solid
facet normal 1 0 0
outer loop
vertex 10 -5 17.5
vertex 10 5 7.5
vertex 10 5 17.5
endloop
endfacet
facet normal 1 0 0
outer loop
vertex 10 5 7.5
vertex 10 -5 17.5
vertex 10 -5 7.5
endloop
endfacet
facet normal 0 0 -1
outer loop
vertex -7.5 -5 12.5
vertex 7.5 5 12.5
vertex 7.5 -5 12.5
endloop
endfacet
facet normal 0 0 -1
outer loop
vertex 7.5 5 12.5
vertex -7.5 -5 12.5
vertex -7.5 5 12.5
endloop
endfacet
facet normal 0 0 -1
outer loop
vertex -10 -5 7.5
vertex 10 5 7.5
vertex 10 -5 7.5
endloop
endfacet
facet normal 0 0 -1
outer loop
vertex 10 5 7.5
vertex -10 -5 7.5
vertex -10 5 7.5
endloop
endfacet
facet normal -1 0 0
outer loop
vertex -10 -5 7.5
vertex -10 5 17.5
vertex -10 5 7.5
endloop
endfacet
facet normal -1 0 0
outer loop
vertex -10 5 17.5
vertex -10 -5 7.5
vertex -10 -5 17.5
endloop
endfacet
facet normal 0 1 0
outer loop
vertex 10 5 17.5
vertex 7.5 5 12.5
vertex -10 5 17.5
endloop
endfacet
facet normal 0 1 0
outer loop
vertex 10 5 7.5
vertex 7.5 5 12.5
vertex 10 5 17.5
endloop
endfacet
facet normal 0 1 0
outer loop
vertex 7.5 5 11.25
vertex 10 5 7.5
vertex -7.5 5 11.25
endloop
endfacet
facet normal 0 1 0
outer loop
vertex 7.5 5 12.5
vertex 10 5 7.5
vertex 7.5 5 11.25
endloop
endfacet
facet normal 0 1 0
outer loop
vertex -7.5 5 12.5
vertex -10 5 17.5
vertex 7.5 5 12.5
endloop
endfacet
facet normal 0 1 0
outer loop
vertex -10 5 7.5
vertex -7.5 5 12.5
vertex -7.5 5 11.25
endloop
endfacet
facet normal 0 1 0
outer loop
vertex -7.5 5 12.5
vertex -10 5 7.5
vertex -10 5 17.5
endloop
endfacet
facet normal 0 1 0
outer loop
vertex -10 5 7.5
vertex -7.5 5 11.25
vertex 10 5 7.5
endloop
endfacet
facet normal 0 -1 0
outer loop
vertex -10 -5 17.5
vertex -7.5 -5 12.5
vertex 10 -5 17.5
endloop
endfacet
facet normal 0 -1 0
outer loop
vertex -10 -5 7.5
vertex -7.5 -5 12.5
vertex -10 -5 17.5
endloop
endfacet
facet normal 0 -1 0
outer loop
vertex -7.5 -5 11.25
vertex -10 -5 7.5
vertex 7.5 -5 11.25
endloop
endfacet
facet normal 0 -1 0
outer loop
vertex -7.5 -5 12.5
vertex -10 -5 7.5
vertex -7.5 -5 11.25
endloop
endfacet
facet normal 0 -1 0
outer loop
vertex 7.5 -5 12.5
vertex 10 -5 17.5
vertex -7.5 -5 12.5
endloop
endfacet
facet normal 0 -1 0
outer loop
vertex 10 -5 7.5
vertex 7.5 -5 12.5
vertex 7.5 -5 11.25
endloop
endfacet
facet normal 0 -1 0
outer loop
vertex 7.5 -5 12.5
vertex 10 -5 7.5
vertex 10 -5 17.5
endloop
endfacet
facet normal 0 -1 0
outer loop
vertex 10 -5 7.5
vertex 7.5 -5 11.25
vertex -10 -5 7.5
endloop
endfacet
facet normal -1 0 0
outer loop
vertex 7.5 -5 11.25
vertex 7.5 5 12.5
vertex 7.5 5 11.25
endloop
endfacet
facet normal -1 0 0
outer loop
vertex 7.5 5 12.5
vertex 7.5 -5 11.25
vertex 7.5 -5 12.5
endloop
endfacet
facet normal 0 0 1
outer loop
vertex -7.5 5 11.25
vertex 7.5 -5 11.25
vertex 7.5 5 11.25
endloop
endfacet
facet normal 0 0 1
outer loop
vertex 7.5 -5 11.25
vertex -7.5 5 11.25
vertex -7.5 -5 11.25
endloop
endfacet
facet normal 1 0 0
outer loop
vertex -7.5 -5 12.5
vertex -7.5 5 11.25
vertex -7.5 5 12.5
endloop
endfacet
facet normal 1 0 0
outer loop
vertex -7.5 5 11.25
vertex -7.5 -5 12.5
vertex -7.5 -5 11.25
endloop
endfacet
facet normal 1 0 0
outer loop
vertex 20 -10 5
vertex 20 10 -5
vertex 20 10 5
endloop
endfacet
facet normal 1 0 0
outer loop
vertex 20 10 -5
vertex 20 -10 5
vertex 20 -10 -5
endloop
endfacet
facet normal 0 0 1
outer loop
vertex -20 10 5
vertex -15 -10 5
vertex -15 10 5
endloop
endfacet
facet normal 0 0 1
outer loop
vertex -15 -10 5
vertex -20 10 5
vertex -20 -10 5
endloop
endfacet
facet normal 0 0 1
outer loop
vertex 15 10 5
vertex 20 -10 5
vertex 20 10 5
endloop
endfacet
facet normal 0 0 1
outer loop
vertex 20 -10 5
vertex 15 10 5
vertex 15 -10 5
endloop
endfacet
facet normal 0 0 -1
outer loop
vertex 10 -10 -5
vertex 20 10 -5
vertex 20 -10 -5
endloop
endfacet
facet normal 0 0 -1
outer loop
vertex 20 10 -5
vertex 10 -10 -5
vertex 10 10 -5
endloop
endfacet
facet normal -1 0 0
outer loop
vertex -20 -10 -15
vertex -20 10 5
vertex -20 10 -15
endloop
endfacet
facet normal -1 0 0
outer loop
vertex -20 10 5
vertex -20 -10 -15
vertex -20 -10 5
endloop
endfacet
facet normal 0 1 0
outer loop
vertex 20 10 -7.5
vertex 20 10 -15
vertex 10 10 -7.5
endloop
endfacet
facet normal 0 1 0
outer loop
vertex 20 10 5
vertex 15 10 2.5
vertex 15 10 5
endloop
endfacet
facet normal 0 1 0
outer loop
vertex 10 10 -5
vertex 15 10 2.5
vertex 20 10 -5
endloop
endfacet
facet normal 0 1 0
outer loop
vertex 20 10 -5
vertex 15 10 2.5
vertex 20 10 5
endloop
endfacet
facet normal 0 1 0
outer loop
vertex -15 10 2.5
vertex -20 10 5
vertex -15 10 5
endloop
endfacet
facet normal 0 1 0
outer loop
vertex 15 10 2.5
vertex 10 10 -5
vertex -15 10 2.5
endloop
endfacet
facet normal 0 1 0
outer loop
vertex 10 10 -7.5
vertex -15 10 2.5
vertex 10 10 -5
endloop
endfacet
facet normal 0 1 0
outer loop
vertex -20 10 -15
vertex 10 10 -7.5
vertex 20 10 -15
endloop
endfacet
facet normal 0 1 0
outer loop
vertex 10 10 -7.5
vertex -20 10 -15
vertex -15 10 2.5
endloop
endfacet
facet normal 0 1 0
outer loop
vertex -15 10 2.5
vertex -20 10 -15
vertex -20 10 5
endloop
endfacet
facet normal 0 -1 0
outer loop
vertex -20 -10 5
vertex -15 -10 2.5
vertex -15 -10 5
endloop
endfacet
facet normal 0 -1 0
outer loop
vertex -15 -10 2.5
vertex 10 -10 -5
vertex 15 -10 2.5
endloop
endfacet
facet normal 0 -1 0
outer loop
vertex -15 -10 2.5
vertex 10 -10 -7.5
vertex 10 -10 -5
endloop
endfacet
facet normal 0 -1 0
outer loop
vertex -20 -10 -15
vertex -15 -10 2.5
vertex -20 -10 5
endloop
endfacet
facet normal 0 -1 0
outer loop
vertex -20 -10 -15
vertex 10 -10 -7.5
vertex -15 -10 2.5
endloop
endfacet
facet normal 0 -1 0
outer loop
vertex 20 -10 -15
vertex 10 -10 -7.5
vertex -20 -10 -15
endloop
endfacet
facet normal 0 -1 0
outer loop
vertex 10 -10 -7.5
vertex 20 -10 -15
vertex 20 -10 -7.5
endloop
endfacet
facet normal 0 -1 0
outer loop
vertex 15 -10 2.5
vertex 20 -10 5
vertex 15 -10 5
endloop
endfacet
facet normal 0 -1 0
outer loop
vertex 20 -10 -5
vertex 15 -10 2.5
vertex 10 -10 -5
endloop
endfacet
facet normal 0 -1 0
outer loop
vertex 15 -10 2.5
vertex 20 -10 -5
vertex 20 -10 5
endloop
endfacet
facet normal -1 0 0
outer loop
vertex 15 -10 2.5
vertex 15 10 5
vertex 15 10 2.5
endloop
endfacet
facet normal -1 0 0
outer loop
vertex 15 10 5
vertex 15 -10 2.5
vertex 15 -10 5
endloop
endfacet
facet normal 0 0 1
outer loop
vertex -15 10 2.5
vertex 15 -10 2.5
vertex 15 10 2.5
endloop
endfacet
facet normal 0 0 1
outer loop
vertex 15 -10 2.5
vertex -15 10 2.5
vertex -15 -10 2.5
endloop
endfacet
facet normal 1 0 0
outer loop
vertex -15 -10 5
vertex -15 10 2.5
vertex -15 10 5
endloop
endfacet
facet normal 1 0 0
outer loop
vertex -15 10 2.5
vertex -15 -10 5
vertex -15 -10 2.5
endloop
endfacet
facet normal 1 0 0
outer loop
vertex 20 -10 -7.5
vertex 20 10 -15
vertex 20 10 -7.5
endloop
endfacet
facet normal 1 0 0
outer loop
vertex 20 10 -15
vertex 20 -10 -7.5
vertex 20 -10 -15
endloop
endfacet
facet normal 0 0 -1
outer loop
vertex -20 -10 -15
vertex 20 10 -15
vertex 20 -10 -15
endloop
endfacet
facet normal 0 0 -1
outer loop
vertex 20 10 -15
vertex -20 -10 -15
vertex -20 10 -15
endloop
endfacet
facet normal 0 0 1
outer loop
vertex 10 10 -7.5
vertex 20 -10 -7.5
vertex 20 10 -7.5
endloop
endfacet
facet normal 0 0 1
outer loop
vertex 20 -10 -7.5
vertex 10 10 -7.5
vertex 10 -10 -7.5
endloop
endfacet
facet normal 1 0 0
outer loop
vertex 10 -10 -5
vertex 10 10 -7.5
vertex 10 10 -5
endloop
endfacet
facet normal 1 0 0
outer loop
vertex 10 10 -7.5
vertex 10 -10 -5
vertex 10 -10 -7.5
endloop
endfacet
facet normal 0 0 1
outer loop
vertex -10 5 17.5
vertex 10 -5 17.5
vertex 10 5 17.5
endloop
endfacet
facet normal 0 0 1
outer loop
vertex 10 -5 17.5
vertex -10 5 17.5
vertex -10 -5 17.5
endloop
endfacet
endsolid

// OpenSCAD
// Define dimensions for each component
module central_block() {
    difference() {
        cube([40, 20, 10], center = true);
        translate([0, 0, 5])
            cube([30, 20, 5], center = true);
    }
}

module side_block() {
    difference() {
        cube([40, 20, 10], center = true);
        translate([15, 0, 5])
            cube([10, 20, 5], center = true);
    }
}

module spacer_block() {
    difference() {
        cube([20, 10, 5], center = true);
        translate([0, 0, 2.5])
            cube([15, 10, 2.5], center = true);
    }
}

module end_block() {
    cube([20, 10, 5], center = true);
}

// Assemble the components based on the positional relationship
module assembly() {
    translate([0, 0, 15]) end_block(); // Layer 1
    translate([0, 0, 10]) spacer_block(); // Layer 2
    translate([0, 0, 0]) central_block(); // Layer 3
    translate([0, 0, -10]) side_block(); // Layer 4
}

// Render the assembly
assembly();
